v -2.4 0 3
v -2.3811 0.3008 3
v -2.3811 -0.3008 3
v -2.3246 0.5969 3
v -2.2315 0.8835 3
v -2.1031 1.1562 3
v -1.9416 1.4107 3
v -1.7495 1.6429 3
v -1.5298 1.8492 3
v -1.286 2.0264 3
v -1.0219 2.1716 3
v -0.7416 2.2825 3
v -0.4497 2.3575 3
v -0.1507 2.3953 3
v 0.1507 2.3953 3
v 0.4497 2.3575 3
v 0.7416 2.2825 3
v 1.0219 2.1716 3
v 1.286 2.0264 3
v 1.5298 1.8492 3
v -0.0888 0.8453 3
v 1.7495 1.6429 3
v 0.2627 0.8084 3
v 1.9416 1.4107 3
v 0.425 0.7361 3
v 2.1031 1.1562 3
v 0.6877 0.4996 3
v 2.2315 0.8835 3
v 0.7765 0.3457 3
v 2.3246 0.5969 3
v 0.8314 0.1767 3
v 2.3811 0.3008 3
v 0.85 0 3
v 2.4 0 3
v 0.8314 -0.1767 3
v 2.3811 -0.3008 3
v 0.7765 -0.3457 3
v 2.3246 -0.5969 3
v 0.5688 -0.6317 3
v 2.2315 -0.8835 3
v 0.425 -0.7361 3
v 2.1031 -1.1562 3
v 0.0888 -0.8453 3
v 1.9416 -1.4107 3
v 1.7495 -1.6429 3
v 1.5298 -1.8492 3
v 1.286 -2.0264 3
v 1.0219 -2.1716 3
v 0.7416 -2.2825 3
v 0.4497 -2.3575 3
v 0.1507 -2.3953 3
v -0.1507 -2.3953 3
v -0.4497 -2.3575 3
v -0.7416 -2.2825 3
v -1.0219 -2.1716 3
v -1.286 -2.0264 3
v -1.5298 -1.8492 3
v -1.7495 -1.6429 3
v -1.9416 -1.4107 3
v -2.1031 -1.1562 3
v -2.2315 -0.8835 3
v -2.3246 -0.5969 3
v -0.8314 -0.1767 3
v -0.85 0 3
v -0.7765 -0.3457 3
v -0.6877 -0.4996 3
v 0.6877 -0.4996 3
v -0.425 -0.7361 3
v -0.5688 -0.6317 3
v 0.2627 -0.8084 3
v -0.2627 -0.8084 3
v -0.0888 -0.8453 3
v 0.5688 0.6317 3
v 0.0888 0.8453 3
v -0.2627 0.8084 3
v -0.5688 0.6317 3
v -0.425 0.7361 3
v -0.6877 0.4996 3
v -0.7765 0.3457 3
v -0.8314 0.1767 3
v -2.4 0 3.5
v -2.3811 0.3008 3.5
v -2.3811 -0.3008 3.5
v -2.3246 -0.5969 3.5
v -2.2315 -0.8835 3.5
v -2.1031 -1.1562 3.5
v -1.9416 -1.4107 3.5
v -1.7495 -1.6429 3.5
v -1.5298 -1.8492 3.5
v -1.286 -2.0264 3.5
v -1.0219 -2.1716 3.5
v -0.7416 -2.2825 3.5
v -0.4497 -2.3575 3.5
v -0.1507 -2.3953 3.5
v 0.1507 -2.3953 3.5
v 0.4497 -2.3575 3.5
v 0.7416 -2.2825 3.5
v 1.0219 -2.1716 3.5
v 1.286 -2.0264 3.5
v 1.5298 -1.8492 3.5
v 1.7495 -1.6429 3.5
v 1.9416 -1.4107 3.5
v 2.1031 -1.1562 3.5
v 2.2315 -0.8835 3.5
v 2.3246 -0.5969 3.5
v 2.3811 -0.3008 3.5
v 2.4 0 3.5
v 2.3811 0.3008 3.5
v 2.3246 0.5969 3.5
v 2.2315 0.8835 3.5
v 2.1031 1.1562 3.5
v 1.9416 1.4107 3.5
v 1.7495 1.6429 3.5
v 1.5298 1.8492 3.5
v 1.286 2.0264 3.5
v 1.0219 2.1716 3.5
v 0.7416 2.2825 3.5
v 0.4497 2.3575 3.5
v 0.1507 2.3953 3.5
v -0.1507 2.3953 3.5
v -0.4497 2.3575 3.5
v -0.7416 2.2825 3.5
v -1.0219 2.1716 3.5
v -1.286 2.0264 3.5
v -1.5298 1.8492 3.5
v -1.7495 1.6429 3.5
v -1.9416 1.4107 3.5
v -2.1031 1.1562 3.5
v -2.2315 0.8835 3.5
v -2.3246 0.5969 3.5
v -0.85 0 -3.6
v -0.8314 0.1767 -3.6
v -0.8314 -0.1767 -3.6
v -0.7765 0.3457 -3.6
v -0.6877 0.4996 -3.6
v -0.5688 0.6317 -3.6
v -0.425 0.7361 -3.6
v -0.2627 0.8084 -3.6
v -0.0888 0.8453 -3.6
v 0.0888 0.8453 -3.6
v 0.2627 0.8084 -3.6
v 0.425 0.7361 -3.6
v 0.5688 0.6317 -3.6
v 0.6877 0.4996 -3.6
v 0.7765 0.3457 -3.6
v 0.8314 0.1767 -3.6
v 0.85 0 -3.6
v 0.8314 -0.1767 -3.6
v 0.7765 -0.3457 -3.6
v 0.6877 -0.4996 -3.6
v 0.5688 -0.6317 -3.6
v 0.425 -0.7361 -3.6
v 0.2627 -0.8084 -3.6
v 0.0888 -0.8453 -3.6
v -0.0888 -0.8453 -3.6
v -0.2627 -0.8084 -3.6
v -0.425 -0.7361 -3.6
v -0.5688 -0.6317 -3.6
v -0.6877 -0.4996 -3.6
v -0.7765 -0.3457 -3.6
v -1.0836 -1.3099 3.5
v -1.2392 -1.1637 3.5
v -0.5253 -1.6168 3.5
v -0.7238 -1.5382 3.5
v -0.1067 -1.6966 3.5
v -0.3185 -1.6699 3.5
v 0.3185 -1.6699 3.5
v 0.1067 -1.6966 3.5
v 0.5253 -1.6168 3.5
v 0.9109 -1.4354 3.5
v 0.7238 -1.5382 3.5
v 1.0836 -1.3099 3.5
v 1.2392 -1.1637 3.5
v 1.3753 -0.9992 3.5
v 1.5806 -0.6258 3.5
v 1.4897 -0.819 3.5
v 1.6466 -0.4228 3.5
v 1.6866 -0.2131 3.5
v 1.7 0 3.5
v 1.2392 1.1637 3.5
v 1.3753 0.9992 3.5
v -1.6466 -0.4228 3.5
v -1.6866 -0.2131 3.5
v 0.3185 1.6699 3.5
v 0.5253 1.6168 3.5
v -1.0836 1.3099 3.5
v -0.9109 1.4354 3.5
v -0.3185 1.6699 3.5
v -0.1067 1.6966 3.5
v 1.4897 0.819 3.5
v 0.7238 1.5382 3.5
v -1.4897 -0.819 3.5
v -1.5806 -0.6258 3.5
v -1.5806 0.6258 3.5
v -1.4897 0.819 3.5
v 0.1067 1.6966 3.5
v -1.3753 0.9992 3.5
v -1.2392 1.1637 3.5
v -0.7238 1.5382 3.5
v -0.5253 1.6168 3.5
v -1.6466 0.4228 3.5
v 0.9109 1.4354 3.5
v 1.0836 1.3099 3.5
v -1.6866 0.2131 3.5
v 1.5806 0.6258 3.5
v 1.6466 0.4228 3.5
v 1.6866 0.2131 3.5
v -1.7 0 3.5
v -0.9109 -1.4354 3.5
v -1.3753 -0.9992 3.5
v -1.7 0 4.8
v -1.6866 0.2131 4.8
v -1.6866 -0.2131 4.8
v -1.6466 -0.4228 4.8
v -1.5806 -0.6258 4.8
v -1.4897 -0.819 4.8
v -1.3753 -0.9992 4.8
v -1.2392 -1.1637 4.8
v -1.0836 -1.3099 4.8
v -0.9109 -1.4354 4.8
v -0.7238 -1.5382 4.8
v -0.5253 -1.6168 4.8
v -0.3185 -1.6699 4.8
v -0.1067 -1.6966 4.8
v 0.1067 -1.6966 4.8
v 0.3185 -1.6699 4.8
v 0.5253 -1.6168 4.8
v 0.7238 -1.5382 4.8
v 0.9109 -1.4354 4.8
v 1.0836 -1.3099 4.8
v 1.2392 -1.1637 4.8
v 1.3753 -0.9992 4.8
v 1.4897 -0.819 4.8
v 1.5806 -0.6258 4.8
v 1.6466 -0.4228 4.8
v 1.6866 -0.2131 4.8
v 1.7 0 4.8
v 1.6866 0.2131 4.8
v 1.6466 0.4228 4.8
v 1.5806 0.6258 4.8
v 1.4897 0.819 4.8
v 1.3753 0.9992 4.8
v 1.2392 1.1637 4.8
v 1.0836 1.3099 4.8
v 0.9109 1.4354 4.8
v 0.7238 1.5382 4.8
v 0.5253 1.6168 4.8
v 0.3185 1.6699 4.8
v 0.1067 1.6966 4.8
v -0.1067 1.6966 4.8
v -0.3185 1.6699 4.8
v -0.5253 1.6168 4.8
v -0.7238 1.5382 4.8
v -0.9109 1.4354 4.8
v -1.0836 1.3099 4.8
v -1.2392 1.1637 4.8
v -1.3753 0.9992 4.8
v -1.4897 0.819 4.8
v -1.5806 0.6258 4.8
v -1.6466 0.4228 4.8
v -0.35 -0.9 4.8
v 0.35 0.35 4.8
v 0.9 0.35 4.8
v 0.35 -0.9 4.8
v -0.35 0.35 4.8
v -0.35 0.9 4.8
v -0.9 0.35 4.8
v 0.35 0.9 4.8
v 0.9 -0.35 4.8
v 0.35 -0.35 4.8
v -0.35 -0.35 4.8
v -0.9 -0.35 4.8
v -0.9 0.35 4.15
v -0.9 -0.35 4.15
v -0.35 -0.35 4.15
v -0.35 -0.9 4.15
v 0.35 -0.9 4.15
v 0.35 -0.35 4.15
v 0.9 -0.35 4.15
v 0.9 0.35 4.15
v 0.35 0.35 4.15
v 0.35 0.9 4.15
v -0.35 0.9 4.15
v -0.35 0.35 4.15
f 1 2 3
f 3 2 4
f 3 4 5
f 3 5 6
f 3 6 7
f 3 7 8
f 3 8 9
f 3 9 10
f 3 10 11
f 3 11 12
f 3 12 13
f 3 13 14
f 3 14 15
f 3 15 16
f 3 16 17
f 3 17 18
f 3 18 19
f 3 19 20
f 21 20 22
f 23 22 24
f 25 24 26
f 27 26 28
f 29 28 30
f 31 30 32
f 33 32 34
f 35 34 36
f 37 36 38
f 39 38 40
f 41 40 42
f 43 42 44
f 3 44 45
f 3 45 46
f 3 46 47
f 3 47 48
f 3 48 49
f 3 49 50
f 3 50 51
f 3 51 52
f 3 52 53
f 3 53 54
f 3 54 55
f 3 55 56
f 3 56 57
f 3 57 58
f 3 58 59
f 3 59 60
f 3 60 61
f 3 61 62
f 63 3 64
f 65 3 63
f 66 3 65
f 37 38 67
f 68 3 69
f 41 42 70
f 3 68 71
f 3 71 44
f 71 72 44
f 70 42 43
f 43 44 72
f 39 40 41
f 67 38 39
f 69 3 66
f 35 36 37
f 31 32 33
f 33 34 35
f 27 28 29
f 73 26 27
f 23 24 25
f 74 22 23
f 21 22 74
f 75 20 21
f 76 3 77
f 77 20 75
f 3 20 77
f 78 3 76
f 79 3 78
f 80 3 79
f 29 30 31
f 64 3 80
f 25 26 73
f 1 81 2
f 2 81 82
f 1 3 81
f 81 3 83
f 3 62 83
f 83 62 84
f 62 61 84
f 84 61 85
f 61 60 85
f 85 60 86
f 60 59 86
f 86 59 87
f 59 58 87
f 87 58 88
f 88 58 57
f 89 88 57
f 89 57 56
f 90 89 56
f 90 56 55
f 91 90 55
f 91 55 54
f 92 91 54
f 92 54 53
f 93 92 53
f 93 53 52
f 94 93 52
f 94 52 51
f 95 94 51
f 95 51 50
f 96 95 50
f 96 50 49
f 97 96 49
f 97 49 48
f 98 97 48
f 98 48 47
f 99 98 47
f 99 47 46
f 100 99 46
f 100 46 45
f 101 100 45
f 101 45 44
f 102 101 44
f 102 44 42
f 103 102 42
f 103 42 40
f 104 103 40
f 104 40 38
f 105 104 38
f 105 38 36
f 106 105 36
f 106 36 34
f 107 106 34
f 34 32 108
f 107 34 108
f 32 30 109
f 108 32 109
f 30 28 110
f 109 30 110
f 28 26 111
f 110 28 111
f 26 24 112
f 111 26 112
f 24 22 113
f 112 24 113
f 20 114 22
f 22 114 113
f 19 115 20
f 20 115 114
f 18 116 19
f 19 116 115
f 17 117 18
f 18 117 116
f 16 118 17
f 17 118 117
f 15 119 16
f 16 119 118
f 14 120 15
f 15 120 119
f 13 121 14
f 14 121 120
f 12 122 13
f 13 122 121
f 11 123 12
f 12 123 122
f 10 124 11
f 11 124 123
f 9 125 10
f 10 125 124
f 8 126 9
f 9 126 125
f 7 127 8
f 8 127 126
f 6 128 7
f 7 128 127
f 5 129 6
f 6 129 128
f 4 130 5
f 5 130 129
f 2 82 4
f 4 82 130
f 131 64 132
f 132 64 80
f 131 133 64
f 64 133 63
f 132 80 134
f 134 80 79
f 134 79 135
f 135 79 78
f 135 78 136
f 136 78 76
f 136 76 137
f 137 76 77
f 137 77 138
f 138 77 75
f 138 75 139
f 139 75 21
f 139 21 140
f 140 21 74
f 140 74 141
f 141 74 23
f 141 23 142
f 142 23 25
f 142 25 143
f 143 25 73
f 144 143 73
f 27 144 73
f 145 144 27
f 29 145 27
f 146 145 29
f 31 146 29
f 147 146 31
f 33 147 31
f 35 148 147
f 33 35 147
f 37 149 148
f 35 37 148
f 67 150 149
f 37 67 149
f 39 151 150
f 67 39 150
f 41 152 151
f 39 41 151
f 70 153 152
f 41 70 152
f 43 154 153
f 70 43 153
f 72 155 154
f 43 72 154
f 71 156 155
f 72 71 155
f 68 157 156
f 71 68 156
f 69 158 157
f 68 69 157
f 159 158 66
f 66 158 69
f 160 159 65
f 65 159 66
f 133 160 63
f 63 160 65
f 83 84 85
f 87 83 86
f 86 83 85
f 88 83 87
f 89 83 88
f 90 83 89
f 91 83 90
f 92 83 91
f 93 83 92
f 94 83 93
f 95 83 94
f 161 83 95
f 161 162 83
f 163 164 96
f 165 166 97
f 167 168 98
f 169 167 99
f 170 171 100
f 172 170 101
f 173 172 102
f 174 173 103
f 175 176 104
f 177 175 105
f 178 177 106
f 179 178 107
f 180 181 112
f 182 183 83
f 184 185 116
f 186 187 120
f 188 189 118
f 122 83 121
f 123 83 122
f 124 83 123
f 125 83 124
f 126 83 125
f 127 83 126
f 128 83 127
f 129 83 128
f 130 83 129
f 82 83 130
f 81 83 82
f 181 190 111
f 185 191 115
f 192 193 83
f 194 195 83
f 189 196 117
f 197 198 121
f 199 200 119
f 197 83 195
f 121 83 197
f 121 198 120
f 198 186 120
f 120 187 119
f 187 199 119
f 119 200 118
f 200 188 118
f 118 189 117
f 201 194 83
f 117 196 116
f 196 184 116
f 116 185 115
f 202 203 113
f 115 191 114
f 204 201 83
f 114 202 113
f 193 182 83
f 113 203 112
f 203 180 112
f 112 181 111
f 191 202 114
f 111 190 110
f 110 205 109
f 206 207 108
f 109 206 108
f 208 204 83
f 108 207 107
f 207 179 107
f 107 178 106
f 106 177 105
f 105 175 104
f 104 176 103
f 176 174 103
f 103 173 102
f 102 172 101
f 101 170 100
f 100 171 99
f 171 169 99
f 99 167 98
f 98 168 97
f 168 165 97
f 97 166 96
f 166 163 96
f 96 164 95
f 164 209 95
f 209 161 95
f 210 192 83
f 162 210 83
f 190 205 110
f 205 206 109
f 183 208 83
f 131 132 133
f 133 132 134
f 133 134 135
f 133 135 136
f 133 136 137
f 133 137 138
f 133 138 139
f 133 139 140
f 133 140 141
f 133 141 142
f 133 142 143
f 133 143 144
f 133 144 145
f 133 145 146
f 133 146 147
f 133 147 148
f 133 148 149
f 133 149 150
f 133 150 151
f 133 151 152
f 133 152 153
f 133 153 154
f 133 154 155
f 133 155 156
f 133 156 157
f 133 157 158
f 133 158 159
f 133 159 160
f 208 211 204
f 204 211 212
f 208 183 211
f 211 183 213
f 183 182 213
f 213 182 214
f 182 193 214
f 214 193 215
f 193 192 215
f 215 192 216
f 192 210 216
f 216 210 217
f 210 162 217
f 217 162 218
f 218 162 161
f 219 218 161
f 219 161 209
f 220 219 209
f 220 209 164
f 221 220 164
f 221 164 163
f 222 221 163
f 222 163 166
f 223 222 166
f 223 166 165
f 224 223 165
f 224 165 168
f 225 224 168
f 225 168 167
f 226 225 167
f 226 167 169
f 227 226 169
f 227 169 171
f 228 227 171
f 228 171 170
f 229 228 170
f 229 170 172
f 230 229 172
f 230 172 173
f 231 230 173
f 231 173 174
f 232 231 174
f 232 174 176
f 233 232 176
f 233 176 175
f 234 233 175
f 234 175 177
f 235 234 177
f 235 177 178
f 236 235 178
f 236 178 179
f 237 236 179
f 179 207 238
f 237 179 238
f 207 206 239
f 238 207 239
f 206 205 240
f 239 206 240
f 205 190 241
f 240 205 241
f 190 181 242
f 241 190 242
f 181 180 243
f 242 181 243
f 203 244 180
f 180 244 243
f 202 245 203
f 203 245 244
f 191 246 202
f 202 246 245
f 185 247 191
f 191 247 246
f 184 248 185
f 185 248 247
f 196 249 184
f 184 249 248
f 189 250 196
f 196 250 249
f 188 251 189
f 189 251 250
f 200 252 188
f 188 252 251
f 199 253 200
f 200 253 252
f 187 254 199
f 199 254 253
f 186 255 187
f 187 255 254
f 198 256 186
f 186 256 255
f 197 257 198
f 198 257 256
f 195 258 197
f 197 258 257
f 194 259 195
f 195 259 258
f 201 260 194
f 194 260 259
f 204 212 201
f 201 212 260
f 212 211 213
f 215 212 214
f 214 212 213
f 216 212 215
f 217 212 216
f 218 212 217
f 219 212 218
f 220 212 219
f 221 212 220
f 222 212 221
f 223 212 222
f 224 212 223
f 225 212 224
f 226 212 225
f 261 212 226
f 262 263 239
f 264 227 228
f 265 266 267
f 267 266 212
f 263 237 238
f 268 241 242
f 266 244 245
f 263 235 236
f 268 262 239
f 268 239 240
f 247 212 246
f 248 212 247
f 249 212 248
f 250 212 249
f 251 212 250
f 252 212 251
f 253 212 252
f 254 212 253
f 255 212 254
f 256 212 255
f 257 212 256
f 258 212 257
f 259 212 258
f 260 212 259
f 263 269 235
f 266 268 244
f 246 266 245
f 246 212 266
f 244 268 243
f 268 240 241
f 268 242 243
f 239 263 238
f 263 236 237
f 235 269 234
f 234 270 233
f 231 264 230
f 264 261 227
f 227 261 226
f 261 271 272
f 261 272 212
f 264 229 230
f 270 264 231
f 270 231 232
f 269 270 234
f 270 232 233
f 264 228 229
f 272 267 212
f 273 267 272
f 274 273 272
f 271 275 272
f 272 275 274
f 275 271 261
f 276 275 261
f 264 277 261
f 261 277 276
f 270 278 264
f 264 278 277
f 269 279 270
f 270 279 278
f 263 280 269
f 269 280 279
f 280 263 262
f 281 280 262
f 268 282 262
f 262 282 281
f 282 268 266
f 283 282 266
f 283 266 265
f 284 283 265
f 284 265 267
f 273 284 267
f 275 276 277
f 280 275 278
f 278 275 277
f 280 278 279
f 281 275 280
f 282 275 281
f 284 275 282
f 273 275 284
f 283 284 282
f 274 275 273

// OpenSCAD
X = 0;
Y = 1;
Z = 2;


len = 7.2;
diam = 1.7;

head_diam = 3.4;
head_th = 1.3;

head2_diam = 4.8;
head2_th = 0.5;

extra = 5;

cross_size = [1.8, 0.7, extra];

module cross()
{
  cube(cross_size, center = true);

  rotate([0,0,90])
    cube(cross_size, center = true);
}

module head()
{

  difference() {
    cylinder(r=head_diam/2, h = head_th, center = true, $fn=50);
    
    translate([0,0, cross_size[Z]/2])
      cross();
 }     
 
 translate([0,0, -head2_th/2 - head_th/2])
 cylinder(r=4.8/2, h = 0.5, center = true, $fn=50);

}


cylinder(r=diam/2, h = len, center = true, $fn=30);
translate([0,0,head_th/2 + len/2 -0.1])
head();
